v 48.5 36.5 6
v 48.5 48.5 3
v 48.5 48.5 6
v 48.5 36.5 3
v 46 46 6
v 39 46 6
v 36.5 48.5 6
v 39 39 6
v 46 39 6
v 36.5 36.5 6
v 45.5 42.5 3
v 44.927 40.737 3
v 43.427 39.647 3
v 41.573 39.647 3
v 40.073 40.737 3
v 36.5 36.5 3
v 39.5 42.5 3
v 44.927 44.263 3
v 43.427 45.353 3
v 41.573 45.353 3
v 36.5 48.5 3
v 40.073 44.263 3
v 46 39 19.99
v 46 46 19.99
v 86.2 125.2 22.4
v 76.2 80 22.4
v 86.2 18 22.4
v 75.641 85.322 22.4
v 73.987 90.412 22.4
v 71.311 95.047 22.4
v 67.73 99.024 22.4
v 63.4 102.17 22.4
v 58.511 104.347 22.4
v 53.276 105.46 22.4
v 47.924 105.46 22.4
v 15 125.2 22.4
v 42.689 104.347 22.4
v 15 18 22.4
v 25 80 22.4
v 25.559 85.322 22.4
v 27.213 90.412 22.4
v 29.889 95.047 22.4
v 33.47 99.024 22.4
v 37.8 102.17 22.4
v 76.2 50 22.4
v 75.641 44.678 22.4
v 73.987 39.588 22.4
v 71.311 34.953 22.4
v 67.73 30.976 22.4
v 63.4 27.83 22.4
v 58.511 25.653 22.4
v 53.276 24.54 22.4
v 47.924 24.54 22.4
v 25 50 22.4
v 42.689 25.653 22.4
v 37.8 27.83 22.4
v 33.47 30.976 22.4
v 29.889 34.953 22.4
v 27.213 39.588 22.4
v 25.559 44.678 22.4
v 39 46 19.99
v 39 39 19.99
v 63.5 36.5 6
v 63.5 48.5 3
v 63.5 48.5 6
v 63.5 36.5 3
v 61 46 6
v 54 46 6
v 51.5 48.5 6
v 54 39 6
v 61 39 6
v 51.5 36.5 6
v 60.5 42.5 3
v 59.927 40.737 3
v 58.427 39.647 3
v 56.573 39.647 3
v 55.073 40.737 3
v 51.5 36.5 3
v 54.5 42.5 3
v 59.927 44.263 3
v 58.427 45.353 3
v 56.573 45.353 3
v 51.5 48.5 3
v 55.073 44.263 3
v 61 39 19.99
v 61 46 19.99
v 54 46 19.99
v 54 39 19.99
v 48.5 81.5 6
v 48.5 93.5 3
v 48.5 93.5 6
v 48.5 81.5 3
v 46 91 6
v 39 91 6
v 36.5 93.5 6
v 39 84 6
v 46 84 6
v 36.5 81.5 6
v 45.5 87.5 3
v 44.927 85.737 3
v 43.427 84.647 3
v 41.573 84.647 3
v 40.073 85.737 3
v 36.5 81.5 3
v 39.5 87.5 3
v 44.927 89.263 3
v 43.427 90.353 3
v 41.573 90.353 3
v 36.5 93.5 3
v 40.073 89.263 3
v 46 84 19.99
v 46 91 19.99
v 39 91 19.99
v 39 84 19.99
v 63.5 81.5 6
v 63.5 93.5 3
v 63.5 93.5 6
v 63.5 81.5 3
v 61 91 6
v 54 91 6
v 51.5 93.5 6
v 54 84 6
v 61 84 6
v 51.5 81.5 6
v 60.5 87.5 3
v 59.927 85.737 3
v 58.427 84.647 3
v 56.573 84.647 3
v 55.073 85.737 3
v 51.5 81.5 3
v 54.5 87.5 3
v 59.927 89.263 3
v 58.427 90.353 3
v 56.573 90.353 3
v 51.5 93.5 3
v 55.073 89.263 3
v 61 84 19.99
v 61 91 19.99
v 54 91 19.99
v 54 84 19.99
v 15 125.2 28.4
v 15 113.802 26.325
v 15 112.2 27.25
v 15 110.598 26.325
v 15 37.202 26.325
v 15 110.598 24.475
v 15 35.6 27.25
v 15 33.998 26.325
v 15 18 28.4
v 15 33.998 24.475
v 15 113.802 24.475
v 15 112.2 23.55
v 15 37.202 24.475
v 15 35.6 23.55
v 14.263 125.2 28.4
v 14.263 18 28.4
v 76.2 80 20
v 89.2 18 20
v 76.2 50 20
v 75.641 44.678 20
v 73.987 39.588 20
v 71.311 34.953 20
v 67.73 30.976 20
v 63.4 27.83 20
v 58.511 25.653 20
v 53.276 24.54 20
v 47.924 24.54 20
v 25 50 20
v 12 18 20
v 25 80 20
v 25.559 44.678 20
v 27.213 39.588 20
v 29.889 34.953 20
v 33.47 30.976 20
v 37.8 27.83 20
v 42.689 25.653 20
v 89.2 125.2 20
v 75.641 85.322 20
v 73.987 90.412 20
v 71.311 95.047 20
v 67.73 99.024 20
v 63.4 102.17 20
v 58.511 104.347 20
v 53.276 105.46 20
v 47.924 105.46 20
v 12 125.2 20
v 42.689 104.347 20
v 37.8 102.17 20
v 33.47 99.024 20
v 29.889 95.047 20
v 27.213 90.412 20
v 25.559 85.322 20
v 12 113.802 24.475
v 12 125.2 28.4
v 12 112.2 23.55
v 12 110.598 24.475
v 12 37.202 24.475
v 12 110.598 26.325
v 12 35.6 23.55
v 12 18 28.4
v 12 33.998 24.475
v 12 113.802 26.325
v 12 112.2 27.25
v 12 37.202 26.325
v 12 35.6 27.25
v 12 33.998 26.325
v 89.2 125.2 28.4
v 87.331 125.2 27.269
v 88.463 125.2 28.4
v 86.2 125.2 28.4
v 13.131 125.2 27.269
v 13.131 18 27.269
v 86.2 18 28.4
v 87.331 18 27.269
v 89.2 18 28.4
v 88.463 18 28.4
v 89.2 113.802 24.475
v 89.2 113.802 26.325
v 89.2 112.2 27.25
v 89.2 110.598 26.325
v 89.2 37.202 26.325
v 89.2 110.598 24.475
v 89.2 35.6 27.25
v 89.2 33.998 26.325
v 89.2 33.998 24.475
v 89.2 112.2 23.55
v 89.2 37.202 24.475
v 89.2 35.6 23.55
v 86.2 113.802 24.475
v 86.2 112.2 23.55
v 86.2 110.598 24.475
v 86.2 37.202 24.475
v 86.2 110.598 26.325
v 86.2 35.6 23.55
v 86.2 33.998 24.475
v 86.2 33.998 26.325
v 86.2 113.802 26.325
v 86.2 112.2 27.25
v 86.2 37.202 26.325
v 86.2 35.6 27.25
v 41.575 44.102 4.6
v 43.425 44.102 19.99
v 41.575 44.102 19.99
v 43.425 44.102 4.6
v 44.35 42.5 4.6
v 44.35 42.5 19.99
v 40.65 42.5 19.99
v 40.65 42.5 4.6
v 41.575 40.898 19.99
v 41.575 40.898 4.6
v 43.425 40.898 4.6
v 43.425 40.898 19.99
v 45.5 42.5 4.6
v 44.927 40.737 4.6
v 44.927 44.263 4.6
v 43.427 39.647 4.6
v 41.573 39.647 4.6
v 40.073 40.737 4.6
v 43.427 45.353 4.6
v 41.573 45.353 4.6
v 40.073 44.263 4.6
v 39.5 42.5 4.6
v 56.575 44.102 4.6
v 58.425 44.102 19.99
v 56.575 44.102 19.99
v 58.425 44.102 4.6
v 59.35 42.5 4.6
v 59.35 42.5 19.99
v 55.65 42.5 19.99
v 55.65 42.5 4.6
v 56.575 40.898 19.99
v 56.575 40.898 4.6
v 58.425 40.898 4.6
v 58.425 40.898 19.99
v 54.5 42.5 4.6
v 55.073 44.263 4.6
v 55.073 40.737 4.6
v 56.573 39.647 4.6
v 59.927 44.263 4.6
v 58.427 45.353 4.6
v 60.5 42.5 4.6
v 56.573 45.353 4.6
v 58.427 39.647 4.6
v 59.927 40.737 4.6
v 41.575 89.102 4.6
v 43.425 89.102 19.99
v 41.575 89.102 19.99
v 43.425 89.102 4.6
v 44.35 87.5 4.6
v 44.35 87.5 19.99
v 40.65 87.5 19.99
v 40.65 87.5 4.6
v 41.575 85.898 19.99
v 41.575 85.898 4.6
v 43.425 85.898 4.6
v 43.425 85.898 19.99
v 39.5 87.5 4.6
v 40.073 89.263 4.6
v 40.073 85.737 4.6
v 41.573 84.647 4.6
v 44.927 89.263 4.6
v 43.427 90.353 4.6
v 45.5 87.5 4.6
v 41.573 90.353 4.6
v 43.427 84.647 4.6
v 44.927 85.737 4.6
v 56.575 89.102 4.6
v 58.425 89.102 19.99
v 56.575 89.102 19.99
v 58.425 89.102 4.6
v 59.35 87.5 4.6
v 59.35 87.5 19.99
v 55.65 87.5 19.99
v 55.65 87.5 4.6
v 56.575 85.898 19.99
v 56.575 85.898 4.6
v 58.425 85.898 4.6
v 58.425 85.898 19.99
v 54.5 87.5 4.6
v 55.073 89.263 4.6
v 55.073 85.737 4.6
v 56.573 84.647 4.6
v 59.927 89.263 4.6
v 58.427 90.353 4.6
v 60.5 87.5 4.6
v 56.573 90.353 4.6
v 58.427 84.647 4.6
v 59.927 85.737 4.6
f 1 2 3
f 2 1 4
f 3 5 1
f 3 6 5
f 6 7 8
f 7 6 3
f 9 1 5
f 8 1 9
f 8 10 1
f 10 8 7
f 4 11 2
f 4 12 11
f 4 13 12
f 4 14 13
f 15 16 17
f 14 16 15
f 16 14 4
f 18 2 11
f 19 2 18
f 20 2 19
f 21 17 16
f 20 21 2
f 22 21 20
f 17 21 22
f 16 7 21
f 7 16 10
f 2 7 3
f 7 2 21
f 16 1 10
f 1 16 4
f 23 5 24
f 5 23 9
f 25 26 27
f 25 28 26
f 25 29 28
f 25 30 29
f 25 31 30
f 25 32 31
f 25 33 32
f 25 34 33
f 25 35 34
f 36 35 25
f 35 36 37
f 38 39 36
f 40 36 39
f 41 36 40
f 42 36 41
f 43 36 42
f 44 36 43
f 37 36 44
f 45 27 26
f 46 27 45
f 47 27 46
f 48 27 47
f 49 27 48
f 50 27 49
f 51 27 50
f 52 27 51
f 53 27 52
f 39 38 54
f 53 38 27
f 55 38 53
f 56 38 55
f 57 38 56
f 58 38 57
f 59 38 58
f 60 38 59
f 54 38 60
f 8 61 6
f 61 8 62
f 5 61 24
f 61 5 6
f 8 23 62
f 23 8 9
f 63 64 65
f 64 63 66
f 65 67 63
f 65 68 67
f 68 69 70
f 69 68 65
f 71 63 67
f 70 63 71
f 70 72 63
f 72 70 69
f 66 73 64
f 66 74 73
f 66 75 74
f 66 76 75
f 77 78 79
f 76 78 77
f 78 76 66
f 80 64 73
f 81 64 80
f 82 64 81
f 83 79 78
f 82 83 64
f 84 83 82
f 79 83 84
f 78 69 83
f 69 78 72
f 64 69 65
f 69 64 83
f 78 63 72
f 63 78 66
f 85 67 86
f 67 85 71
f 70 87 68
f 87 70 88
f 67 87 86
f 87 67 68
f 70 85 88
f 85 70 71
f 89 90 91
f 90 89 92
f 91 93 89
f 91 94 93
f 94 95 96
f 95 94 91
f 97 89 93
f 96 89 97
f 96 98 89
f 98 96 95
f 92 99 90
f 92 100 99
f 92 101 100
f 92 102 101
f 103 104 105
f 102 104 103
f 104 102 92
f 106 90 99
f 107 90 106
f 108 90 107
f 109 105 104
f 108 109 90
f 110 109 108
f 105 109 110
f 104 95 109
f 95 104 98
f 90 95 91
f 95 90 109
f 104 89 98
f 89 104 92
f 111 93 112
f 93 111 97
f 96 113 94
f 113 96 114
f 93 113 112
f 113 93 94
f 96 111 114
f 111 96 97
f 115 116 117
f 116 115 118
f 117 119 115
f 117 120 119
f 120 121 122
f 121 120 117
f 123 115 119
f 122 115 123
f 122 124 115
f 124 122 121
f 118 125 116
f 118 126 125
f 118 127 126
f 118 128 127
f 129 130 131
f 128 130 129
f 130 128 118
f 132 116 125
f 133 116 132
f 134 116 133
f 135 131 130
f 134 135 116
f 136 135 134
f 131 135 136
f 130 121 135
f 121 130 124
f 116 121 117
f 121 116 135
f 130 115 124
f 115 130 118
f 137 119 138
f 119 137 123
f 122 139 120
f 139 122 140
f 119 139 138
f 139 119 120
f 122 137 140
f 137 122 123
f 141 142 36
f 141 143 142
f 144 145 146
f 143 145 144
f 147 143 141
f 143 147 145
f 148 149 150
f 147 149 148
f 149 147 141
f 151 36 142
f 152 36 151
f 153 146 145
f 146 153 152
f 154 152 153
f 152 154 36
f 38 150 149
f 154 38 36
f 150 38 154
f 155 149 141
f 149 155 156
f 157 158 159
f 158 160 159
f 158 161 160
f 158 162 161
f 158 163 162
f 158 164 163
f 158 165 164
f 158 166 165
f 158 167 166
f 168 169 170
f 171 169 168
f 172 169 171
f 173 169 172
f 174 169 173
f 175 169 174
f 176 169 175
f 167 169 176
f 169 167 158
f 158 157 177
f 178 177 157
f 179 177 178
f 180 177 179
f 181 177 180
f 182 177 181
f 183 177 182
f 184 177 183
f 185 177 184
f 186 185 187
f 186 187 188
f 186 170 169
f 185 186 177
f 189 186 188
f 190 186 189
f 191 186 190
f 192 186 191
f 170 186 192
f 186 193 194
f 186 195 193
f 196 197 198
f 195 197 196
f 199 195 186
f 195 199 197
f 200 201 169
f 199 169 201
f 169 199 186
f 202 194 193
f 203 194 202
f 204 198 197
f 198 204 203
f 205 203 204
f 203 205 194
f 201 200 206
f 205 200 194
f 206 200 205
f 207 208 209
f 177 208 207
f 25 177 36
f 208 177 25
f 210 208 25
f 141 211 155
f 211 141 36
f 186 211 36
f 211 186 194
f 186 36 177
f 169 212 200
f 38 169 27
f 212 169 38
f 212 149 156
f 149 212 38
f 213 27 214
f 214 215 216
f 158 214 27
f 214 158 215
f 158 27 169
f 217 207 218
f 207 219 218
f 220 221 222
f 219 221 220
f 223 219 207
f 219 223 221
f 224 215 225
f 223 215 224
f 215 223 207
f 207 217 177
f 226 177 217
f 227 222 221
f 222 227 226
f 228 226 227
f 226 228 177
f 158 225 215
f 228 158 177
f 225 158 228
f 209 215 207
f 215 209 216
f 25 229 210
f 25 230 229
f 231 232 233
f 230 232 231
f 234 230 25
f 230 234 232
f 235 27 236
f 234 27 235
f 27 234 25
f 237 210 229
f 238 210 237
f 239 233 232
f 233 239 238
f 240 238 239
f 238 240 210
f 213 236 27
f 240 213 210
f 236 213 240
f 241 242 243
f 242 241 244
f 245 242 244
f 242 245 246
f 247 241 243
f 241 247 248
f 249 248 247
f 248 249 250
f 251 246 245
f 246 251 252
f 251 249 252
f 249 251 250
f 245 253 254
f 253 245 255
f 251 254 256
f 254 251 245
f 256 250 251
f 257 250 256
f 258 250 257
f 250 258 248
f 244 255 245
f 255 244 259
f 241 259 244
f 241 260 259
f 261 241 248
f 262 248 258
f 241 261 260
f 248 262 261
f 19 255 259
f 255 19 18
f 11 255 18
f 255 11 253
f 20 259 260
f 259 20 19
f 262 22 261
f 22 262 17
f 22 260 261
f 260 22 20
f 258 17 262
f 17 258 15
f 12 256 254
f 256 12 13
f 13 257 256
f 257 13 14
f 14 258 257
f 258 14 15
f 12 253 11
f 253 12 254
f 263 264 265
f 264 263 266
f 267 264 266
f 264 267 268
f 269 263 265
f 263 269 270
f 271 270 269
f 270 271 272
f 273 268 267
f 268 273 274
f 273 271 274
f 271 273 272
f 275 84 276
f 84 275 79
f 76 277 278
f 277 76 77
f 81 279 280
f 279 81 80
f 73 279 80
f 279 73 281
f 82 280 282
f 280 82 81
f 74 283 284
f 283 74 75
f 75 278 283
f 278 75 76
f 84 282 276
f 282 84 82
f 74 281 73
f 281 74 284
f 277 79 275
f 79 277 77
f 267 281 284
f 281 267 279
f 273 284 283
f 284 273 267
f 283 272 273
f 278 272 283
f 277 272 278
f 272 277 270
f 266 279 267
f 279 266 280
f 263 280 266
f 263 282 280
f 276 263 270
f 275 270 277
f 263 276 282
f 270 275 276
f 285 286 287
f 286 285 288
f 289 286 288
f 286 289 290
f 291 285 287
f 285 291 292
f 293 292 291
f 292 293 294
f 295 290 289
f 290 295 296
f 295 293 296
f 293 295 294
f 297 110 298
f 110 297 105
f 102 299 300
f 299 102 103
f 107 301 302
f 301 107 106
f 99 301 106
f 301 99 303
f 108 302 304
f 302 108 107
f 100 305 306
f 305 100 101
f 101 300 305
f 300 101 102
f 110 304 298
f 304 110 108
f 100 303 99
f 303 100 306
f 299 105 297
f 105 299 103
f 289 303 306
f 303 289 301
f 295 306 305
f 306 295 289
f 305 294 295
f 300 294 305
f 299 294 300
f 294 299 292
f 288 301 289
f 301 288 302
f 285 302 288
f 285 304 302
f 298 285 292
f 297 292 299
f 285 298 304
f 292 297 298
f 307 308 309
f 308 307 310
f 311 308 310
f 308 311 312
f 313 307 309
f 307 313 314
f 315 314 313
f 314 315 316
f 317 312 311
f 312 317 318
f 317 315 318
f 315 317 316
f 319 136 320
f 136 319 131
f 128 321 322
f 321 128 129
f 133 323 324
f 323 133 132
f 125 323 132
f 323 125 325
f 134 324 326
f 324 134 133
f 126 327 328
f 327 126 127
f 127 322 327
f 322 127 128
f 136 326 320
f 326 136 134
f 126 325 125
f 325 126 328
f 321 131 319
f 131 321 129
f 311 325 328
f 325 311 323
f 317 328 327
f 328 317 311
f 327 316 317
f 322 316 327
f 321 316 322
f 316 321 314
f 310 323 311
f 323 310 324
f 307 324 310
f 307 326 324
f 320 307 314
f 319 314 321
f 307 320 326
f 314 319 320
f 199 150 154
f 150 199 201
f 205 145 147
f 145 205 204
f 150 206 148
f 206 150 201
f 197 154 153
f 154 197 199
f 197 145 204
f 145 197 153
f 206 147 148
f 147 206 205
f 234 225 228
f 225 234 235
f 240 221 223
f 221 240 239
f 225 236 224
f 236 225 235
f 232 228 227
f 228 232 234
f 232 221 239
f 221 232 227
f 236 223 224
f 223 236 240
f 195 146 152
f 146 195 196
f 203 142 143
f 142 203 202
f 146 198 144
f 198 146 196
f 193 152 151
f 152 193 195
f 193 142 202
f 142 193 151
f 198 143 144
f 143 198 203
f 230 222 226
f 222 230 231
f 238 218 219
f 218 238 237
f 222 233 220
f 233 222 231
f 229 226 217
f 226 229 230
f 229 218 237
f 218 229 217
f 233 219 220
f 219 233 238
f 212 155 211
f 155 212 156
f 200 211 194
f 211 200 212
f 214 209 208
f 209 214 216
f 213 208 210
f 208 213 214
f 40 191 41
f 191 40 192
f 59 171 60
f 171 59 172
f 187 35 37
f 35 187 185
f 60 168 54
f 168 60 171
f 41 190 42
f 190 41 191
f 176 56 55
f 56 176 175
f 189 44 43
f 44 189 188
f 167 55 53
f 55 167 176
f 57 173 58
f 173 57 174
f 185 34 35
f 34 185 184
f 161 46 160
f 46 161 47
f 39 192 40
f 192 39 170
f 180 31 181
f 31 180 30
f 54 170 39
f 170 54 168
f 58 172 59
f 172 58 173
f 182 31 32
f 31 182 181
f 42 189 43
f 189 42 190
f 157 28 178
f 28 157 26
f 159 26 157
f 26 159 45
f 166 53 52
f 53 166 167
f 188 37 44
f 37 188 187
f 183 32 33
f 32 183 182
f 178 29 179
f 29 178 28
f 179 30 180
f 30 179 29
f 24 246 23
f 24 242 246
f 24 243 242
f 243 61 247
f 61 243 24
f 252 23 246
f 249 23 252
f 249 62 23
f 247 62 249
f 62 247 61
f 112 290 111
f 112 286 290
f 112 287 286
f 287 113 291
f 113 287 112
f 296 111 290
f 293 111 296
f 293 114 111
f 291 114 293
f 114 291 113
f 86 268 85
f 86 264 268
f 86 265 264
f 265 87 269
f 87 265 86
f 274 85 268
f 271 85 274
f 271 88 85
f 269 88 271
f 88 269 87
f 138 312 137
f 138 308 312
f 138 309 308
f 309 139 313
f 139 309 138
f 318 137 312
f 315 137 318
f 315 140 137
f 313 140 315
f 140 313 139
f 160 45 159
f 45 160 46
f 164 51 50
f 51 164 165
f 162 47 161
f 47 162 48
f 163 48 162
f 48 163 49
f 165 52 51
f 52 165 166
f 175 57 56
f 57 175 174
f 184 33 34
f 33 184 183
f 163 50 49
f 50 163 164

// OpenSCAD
// =====================================================================
// parts/ssd_mezzanine.scad  ->  ssd_mezzanine()
//
// 2.5" SATA SSD tray carried ON STILTS ABOVE the motherboard. A 1U chassis
// has ~27mm of clear air over the board (the tallest board part is only
// ~8.9mm), so a JEITA 100x70x7mm drive fits comfortably in that dead space.
// This part exploits it: a flat tray holds the SSD on 4 tall legs whose feet
// bolt straight DOWN into the baseplate's 15mm M3 self-tap pilot grid, while
// the drive itself floats above the board with clearance.
//
// FROZEN CONTRACT — modeled in the GLOBAL ASSEMBLY FRAME:
//   Origin (0,0,0) = front-bottom-left interior corner of the chassis body.
//   +X width, +Y depth, +Z height (floor 0..FLOOR=3).
// main.scad unions this module with NO transform. It is PRE-PLACED here over
// a LOW area near the FRONT-LEFT of the board, offset so the tray CLEARS the
// blower intake. Feet sit at Z=FLOOR; tray top lands near Z=FLOOR+18.
//
// Mounting / seams (from params.scad + contract):
//   - 4x legs ~17mm tall. Each foot has an M3 CLEARANCE hole that lands on a
//     real 15mm grid point; an M3 screw passes DOWN into the GRID_PILOT
//     (self-tap into the floor) OR uses an M3 clearance into a grid insert.
//   - Tray holds the drive flat. The drive is retained by 4x M3 CLEARANCE
//     holes through the tray's two long side rails into the drive's standard
//     2.5" side mounting holes (JEITA 100/70 spacing). Side holes axis +X.
//   - The cage takes NO heat-set inserts -> clearance/self-tap only.
//
// Printability / orientation:
//   - The tray (rails + floor + foot pads) prints FLAT, largest face down.
//     Its two bed-plane axes are ~104 x 74  (both << PRINT_MAX_XY 190).
//   - The 4 tall legs are slender; print them AS PART OF the tray standing up
//     is a tall thin overhang risk, so the recommended orientation is to
//     print the tray flat and the LEGS LAID FLAT beside it (each leg's tab
//     face on the bed), then bolt the feet to the grid at assembly. Legs are
//     modeled here in their MOUNTED (vertical) pose for the assembly view.
//   - No bore bridges over a blind feature; every hole is a clean through-hole.
// All // MEASURE values live ONLY in params.scad.
// =====================================================================

include <params.scad>

// ---------------------------------------------------------------------
// MEASURE-style placement constant: where the tray sits in XY (assembly
// frame). Front-left of the board, offset to clear the blower intake which
// sits toward board center. Tray spans +X / +Y from this origin.
// ---------------------------------------------------------------------
SSD_MEZ_POS   = [12, 18];   // MEASURE tray origin [x,y], front-left, clears blower
SSD_MEZ_LEG_H = 17;         // MEASURE leg height (16-18mm); tray top ~ FLOOR+18

module ssd_mezzanine() {
    // ---- resolved placement (assembly frame) ----------------------------
    ox    = SSD_MEZ_POS[0];        // tray origin X  // MEASURE
    oy    = SSD_MEZ_POS[1];        // tray origin Y  // MEASURE
    leg_h = SSD_MEZ_LEG_H;         // leg height (Z)

    // Drive footprint (JEITA 2.5"): length in +Y, width in +X.
    drv_l = SSD_L;                 // 100 (Y, drive length)
    drv_w = SSD_W;                 //  70 (X, drive width)

    // ---- tray geometry --------------------------------------------------
    floor_t = 2.4;                 // tray floor thickness (Z), 12 layers @0.2
    rail_t  = 3.0;                 // long side-rail thickness (X)
    rail_h  = 6.0;                 // rail height above tray floor top (Z)
    clr     = 0.6;                 // drive slip clearance per side (X & Y)
    chamf   = 1.0;                 // lead-in / top-edge chamfer (<=45deg)

    // Inner pocket (drive + clearance).
    pocket_w = drv_w + 2*clr;      // X inner
    pocket_l = drv_l + 2*clr;      // Y inner

    // Outer tray shell footprint (~104 x 74 -> both << 190, prints flat).
    outer_w  = pocket_w + 2*rail_t;    // X total (~77mm)
    outer_l  = pocket_l + 2*rail_t;    // Y total (~107mm)
    // NOTE: outer_l ~107, outer_w ~77 -> two largest bed-plane axes <=190. OK.

    // Tray Z datum: feet bottoms at Z=FLOOR, tray floor sits at top of legs.
    sz0   = FLOOR;                 // foot bottom Z (on baseplate top)
    tz0   = sz0 + leg_h;           // tray floor BOTTOM Z (= FLOOR + 17 = 20)
    tz1   = tz0 + floor_t;         // tray floor TOP Z (drive underside ~22)
    rz1   = tz1 + rail_h;          // rail top Z (~28, still inside 1U interior)

    // Shell corner (assembly frame).
    sx0 = ox;
    sy0 = oy;

    // Drive origin inside the pocket (drive bottom rests on tray floor top).
    px0 = sx0 + rail_t;            // pocket X0
    py0 = sy0 + rail_t;            // pocket Y0
    drv_x0 = px0 + clr;            // drive left face X
    drv_y0 = py0 + clr;            // drive front face Y

    // ---- 4x leg foot positions: nearest 15mm grid points ----------------
    // Pick grid columns/rows that fall inside the tray footprint with an M3
    // edge margin, straddling the tray center, so all 4 feet land on the grid.
    cx_mid = sx0 + outer_w/2;
    cy_mid = sy0 + outer_l/2;
    gx_lo = GRID_X0 + GRID_PITCH * floor((cx_mid - GRID_X0)/GRID_PITCH);
    gx_hi = gx_lo + GRID_PITCH;
    // wider Y straddle for tip stability of the tall tray
    gy_lo = GRID_Y0 + GRID_PITCH * floor((cy_mid - GRID_Y0)/GRID_PITCH - 1);
    gy_hi = GRID_Y0 + GRID_PITCH * ceil ((cy_mid - GRID_Y0)/GRID_PITCH + 1);
    foot_pts = [ [gx_lo, gy_lo], [gx_hi, gy_lo],
                 [gx_lo, gy_hi], [gx_hi, gy_hi] ];   // 4x M3 clearance // MEASURE

    // Leg cross-section (square post) and foot pad.
    leg_w   = 7.0;                 // leg post side (X & Y)
    foot_w  = 12.0;                // foot pad side (X & Y) — wide bolt land
    foot_t  = 3.0;                 // foot pad thickness (Z)

    // ---- 4x M3 side retention holes (drive's standard 2.5" side holes) ---
    // JEITA 2.5": 4 side holes, 2 per long side, axis along drive WIDTH (+X),
    // ~3.0mm above the drive bottom, longitudinal span ~76.6mm. // MEASURE.
    side_hole_z = tz1 + 3.0;                  // 3.0mm above drive bottom // MEASURE
    side_y_near = drv_y0 + 14.0;              // // MEASURE
    side_y_far  = drv_y0 + 90.6;              // // MEASURE (JEITA span ~76.6)
    side_ys     = [ side_y_near, side_y_far ];

    difference() {
        union() {
            // ---- 4 tall legs + foot pads (mounted/vertical pose) --------
            for (p = foot_pts) {
                // foot pad on the baseplate (bolts into grid)
                translate([p[0] - foot_w/2, p[1] - foot_w/2, sz0])
                    cube([foot_w, foot_w, foot_t]);
                // leg post rising INTO the tray floor (overlap -> one solid)
                translate([p[0] - leg_w/2, p[1] - leg_w/2, sz0])
                    cube([leg_w, leg_w, leg_h + floor_t]);
            }

            // ---- tray floor slab (drive sits flat on top) ----------------
            translate([sx0, sy0, tz0])
                cube([outer_w, outer_l, floor_t]);

            // ---- two long side rails (carry the drive side screws) -------
            for (rx = [ sx0, sx0 + outer_w - rail_t ])
                translate([rx, sy0, tz0])
                    cube([rail_t, outer_l, floor_t + rail_h]);
        }

        // ---- M3 clearance up through each foot (axis +Z) -----------------
        // The mount screw enters from the FOOT BOTTOM and self-taps DOWN into
        // the grid pilot below. The clearance bore runs up through the foot
        // and into the leg but STOPS short of the tray floor (leg stays joined
        // to the tray -> one solid). A counterbore at the foot BOTTOM recesses
        // the M3 cap head flush with the baseplate (opens DOWN -> no bridging).
        bore_h = foot_t + leg_h - 3.0;             // stop ~3mm below tray floor
        for (p = foot_pts) {
            translate([p[0], p[1], sz0 - EPS])
                cylinder(h = bore_h + EPS, d = M3_CLEAR);
            translate([p[0], p[1], sz0 - EPS])
                cylinder(h = 1.6 + EPS, d = M3_HEAD_D);
        }

        // ---- 4x M3 side retention holes (axis +X, through both rails) ----
        for (sy = side_ys) {
            // left rail
            translate([sx0 - EPS, sy, side_hole_z])
                rotate([0, 90, 0])
                    cylinder(h = rail_t + 2*EPS, d = M3_CLEAR);
            // right rail
            translate([sx0 + outer_w - rail_t - EPS, sy, side_hole_z])
                rotate([0, 90, 0])
                    cylinder(h = rail_t + 2*EPS, d = M3_CLEAR);
        }

        // ---- top-edge chamfer on the side rails (<=45deg, deburr) --------
        for (s = [0, 1]) {
            rx = (s == 0) ? sx0 : sx0 + outer_w;     // outer rail face X
            translate([rx, sy0 - EPS, rz1])
                rotate([0, 45, 0])
                    cube([chamf*1.6, outer_l + 2*EPS, chamf*1.6]);
        }

        // ---- drive-entry mouth chamfer on the inner-top of each rail -----
        for (s = [0, 1]) {
            ix = (s == 0) ? px0 : px0 + pocket_w;    // inner rail face X
            translate([ix, sy0 - EPS, rz1])
                rotate([0, 45, 0])
                    cube([chamf*1.6, outer_l + 2*EPS, chamf*1.6], center = false);
        }

        // ---- floor lightening + airflow windows under the drive ----------
        // Saves plastic and lets warm air rise off the board through the tray.
        // Two windows sit in the Y-GAP BETWEEN the leg rows (gy_lo..gy_hi) so
        // they NEVER undercut a leg/foot land -> the floor stays solid over
        // every leg and the tray remains ONE connected solid.
        win_w  = pocket_w - 20;                   // X window width (inboard of rails)
        win_cx = px0 + pocket_w/2;                // window center X (clear of rails)
        // central window, fully between the two leg rows
        win_a0 = gy_lo + leg_w/2 + 4;             // start just past the near legs
        win_a1 = gy_hi - leg_w/2 - 4;             // end just before the far legs
        translate([0, 0, tz0 - EPS])
            linear_extrude(height = floor_t + 2*EPS)
                hull() {
                    translate([win_cx, win_a0]) circle(d = win_w);
                    translate([win_cx, win_a1]) circle(d = win_w);
                }
    }
}

// ---- standalone render ----
ssd_mezzanine();
